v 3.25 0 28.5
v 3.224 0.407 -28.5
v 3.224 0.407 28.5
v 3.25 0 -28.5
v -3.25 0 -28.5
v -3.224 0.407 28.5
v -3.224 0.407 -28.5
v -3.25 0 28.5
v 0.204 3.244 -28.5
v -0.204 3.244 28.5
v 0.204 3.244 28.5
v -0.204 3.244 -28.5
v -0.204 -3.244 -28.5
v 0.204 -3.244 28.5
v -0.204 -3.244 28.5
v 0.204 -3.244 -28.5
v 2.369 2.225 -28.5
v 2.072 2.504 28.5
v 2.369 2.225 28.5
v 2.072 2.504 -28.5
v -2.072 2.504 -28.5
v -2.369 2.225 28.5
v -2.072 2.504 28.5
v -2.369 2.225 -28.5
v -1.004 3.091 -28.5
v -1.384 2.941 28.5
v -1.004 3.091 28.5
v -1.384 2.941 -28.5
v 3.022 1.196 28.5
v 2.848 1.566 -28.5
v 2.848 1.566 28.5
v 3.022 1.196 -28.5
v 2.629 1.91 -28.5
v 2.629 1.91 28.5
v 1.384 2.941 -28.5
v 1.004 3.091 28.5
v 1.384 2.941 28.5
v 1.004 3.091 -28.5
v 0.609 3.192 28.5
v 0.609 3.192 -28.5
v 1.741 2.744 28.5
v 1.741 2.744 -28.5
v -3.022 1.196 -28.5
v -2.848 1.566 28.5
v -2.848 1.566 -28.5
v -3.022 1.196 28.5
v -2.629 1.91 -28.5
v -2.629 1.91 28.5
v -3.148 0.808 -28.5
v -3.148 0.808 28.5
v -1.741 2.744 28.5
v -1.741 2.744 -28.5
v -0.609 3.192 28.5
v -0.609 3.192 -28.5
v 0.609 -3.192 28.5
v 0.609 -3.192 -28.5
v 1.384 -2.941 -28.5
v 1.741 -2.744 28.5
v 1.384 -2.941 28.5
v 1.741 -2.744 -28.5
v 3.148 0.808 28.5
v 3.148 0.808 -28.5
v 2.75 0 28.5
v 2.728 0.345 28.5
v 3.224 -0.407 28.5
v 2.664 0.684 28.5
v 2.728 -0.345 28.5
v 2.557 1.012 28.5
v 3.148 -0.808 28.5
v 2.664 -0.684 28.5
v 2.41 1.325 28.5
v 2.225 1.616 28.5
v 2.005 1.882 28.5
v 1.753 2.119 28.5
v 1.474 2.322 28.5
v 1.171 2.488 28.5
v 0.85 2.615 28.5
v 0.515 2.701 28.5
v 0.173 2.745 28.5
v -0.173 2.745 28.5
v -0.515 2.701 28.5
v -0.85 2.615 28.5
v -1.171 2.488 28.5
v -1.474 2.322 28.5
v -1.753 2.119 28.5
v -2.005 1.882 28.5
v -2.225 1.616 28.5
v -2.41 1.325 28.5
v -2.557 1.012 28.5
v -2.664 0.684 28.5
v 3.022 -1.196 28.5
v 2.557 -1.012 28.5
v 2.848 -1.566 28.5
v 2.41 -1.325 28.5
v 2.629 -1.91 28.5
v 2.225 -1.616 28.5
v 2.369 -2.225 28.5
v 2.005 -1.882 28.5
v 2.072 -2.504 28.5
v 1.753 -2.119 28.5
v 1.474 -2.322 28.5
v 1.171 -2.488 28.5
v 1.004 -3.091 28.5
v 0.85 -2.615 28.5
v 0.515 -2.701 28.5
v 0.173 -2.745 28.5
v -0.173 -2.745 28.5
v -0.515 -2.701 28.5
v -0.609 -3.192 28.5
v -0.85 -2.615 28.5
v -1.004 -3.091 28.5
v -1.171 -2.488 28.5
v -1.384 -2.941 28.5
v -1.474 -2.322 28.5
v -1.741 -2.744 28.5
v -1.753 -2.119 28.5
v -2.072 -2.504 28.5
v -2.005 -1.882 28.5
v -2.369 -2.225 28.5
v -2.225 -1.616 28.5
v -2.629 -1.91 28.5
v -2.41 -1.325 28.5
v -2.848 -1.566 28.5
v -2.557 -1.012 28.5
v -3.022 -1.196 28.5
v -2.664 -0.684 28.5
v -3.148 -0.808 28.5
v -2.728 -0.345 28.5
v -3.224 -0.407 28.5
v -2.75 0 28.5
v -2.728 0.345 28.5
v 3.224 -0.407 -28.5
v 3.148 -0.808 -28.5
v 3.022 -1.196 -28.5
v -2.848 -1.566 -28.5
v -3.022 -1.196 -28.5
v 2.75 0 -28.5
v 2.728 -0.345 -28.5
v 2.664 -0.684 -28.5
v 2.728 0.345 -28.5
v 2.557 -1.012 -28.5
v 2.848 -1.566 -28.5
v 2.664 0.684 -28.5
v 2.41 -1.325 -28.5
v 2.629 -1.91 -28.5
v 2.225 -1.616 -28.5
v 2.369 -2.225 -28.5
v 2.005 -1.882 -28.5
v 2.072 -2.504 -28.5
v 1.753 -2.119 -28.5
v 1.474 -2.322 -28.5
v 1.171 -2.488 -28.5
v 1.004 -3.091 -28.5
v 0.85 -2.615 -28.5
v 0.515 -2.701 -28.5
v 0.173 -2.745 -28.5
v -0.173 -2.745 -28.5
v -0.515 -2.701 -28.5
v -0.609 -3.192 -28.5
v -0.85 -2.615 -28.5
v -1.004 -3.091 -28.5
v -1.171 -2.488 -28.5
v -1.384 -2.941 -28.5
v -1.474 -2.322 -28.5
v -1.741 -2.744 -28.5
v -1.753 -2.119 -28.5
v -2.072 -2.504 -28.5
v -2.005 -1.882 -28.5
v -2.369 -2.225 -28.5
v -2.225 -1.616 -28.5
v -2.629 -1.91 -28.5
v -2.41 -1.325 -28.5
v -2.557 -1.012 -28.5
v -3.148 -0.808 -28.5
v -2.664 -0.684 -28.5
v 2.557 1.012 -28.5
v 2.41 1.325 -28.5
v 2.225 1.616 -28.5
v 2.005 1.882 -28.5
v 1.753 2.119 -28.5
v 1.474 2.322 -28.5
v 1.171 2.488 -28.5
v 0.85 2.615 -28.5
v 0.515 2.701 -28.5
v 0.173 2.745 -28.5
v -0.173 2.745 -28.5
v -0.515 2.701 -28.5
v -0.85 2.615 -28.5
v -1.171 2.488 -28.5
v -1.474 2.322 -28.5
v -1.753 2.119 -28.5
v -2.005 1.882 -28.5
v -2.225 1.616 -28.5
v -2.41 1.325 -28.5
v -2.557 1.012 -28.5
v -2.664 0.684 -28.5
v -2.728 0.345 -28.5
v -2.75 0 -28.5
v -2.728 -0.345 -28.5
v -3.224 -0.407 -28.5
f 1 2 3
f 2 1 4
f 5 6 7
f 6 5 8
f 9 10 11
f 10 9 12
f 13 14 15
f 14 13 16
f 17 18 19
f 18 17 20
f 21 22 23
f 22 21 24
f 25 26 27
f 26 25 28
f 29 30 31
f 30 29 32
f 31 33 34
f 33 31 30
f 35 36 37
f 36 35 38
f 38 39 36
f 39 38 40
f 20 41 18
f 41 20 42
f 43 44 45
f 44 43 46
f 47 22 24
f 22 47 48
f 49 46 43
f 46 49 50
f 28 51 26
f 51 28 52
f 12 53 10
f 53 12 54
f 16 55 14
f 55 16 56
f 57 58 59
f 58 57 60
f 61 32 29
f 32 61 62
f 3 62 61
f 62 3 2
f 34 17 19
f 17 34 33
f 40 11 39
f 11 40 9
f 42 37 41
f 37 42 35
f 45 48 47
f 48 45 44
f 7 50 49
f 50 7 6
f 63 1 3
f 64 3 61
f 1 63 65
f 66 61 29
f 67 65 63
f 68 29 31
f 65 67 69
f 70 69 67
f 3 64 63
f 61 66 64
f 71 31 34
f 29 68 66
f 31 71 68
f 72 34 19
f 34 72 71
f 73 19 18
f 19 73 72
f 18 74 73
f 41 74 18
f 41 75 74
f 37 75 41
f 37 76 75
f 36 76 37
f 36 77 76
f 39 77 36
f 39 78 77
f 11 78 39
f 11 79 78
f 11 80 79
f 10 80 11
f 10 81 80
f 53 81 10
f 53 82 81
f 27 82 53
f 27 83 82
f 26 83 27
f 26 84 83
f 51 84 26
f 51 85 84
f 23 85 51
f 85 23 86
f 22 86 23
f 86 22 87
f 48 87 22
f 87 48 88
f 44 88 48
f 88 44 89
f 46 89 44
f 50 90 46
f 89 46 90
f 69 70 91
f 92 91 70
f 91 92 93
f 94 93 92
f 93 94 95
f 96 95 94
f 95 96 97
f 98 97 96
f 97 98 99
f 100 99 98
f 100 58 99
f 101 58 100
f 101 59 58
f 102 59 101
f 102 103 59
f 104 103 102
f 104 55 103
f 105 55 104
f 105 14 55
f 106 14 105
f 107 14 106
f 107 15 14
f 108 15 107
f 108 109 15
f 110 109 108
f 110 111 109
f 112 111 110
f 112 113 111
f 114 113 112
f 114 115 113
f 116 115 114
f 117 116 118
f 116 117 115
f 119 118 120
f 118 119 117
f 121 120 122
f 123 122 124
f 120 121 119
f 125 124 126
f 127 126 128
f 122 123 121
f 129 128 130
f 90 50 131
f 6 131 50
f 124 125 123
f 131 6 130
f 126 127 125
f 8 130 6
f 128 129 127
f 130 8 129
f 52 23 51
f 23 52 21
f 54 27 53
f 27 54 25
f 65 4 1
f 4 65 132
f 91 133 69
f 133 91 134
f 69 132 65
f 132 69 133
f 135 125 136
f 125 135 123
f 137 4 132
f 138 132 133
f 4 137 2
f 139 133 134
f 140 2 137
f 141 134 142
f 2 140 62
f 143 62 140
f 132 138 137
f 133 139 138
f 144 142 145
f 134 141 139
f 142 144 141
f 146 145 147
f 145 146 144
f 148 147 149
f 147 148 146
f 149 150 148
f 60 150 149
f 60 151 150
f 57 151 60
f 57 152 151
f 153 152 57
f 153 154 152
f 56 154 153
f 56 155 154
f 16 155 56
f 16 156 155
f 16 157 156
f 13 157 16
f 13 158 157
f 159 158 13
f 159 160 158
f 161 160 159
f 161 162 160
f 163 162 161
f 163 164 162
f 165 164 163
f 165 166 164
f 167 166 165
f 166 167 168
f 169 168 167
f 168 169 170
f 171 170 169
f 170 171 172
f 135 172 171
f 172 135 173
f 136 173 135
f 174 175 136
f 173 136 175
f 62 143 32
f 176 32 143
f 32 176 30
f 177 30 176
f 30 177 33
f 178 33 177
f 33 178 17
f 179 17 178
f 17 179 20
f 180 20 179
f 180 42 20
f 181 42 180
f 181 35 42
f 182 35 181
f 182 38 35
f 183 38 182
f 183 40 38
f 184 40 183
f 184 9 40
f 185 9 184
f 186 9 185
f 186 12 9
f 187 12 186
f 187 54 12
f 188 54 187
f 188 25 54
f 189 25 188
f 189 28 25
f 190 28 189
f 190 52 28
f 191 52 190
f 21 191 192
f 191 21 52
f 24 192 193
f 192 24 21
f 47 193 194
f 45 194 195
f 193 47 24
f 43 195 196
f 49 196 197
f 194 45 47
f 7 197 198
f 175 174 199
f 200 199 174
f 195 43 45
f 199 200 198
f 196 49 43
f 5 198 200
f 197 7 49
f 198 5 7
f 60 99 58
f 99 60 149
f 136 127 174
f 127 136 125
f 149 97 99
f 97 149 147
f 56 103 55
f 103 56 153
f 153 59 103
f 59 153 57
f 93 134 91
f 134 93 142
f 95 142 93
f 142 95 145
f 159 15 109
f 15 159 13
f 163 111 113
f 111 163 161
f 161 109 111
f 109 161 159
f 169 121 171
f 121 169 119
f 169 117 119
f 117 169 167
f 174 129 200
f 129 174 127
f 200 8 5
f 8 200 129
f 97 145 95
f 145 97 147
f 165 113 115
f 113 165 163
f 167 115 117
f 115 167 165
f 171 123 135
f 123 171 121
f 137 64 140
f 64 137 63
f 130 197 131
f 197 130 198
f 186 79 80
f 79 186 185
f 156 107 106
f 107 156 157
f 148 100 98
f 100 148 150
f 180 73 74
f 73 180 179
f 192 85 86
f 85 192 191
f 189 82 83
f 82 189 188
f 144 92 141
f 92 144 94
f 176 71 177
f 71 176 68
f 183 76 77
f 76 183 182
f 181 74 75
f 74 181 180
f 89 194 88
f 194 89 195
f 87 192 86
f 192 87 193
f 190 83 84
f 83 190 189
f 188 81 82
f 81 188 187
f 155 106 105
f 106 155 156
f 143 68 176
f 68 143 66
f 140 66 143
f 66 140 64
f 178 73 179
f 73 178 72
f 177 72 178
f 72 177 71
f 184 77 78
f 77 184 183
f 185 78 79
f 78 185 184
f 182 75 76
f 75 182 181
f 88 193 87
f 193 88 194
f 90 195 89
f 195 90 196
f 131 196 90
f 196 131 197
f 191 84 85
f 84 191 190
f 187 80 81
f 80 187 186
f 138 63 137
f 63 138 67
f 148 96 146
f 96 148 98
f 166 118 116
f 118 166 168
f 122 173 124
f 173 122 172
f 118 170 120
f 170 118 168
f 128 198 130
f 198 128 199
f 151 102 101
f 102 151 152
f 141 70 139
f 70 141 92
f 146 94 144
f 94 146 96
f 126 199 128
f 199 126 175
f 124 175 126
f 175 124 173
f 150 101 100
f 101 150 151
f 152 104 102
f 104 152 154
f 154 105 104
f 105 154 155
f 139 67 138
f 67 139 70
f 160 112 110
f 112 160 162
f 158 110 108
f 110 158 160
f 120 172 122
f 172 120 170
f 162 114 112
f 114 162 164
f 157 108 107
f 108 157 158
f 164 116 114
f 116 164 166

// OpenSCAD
$fn = 50;


difference() {
	union() {
		translate(v = [0, 0, -28.5000000000]) {
			cylinder(h = 57, r = 3.2500000000);
		}
	}
	union() {
		translate(v = [0, 0, -100.0000000000]) {
			cylinder(h = 200, r = 2.7500000000);
		}
	}
}
